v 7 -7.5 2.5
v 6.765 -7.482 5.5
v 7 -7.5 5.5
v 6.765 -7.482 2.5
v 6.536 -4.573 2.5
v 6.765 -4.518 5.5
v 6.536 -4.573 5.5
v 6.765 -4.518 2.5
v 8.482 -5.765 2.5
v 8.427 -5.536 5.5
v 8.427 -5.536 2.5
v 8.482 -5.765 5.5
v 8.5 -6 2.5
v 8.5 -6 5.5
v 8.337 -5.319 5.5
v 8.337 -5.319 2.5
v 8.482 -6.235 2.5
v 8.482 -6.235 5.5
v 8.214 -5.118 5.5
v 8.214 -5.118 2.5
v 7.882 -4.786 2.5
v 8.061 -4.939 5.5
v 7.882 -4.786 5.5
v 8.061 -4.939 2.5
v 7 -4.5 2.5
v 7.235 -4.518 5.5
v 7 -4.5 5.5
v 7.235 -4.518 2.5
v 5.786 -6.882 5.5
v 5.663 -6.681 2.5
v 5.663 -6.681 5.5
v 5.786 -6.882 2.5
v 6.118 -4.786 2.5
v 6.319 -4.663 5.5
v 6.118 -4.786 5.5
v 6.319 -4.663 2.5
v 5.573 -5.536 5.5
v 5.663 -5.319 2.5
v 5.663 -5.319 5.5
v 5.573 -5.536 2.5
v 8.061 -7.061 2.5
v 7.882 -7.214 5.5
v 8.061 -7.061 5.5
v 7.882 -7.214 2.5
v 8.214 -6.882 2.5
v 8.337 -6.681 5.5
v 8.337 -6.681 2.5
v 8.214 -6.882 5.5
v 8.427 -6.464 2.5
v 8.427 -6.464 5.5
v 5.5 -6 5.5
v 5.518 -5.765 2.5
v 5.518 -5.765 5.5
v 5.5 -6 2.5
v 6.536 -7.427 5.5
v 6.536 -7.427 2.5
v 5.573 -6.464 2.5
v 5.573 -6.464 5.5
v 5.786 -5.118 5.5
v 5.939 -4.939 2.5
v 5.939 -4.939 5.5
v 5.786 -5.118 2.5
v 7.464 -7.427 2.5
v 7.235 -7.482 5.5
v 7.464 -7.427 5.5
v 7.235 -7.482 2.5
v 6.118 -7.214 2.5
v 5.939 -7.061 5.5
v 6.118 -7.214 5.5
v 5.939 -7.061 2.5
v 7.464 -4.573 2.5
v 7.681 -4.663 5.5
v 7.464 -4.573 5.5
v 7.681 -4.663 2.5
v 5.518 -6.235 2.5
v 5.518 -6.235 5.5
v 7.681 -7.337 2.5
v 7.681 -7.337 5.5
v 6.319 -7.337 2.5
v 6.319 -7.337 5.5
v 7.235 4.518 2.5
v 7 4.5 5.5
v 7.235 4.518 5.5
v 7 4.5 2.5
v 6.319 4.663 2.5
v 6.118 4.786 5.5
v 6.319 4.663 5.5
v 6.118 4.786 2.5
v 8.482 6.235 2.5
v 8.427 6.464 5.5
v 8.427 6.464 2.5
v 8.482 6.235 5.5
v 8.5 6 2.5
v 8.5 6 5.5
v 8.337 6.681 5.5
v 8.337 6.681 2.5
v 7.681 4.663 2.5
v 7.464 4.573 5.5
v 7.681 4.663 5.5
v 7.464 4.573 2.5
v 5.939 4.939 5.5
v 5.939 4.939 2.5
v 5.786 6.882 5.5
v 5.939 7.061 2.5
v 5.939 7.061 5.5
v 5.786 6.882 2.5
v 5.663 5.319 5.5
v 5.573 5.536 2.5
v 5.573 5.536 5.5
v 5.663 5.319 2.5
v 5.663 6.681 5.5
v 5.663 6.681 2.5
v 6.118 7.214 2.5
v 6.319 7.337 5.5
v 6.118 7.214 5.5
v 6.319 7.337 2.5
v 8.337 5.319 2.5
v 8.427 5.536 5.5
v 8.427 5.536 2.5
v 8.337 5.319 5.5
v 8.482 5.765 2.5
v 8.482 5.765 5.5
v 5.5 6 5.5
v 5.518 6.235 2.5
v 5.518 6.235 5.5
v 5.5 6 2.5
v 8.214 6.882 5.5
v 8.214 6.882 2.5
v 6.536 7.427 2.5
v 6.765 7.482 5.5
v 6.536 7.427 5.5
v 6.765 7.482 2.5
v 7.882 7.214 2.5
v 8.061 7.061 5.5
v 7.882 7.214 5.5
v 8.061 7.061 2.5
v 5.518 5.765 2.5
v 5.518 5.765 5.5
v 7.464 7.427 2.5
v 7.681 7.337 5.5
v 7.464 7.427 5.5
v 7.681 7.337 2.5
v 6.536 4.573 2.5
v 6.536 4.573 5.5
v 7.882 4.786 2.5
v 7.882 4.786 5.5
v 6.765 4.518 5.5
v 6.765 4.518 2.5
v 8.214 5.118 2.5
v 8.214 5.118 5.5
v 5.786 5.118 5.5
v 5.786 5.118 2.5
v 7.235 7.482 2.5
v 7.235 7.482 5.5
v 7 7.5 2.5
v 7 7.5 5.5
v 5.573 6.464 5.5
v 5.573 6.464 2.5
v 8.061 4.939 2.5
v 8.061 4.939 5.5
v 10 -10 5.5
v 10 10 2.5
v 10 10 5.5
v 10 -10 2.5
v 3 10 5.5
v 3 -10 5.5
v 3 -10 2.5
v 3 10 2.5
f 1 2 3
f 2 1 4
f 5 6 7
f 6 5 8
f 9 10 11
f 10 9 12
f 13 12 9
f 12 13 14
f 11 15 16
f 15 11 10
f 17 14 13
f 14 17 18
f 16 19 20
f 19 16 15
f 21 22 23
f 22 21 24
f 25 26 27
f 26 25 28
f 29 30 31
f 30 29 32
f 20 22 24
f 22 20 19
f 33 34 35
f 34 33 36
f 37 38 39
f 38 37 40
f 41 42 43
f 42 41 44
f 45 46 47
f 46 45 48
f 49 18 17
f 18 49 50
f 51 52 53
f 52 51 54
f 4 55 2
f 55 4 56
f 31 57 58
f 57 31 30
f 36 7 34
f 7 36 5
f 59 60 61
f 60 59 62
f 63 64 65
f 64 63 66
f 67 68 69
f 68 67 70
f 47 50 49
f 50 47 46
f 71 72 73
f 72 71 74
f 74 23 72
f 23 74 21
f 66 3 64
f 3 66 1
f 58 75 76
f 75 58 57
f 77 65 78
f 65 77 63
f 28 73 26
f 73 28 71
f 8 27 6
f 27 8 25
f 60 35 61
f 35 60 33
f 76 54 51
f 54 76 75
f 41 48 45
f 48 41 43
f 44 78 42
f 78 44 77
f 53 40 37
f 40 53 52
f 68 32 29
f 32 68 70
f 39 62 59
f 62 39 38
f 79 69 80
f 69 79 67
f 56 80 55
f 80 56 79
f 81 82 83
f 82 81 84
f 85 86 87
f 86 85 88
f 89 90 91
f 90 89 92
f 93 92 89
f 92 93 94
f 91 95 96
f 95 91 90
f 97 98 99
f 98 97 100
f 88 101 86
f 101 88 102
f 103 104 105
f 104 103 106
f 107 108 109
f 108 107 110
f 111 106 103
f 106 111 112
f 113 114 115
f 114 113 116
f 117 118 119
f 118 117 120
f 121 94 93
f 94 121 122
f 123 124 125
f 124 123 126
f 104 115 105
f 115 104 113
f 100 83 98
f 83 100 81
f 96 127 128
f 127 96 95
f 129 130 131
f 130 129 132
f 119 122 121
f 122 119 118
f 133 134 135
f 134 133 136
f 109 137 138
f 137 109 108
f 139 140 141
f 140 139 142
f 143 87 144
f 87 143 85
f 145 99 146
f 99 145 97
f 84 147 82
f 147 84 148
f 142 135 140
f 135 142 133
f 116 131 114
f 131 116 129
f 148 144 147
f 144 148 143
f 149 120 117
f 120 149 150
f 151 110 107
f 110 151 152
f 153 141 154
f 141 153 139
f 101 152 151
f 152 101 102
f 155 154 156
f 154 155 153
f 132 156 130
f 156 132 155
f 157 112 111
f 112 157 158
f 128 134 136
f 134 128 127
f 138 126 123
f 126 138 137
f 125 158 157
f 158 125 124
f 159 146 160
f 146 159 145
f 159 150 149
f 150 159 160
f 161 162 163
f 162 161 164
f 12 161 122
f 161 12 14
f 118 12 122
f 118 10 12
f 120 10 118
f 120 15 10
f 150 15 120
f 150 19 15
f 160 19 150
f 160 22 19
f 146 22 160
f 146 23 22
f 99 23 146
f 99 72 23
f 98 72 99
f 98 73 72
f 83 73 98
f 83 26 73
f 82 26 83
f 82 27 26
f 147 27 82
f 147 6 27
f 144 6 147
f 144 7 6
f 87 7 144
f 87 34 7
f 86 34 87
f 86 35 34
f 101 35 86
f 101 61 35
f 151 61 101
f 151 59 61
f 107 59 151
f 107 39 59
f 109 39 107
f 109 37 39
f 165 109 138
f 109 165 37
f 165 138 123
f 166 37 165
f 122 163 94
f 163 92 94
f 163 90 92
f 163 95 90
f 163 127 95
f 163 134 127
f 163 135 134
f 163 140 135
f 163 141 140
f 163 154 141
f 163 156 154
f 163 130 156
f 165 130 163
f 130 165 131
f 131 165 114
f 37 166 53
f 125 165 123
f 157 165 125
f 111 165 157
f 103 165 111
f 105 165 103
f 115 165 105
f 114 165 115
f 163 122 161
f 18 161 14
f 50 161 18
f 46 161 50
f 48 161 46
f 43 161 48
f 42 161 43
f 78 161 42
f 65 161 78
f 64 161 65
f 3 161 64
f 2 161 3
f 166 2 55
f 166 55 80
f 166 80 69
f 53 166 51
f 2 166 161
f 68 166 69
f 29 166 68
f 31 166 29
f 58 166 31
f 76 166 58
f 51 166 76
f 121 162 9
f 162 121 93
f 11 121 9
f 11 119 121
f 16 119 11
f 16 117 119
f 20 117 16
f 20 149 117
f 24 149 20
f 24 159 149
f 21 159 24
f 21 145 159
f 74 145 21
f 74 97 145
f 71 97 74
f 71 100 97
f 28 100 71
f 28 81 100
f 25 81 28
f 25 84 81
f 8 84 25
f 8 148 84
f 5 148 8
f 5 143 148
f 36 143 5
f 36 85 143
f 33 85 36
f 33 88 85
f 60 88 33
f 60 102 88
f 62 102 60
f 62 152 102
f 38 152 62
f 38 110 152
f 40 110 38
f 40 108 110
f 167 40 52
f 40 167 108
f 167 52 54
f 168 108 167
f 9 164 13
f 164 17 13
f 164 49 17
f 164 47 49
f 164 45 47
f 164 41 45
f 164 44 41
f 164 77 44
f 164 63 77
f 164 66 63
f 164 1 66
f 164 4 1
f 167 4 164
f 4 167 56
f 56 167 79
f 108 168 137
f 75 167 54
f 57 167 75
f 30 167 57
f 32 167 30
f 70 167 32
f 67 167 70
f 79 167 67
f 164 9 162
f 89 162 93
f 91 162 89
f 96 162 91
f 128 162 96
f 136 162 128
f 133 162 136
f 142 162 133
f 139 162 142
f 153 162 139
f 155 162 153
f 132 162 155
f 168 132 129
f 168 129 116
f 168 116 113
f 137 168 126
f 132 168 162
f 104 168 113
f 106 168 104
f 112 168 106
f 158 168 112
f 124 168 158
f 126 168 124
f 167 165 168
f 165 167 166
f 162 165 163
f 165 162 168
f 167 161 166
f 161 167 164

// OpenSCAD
    difference() {
        union() {
            translate([3,-10,2.5]) cube([7, 20,3]);
        }
        union() {
  
            translate([7, -6, 0]) rotate([0, 0, 0]) cylinder(h=80, d=3, center=true, $fn=40);
            translate([7, 6, 0])  rotate([0, 0, 0]) cylinder(h=80, d=3, center=true, $fn=40);
            
        }
    }
